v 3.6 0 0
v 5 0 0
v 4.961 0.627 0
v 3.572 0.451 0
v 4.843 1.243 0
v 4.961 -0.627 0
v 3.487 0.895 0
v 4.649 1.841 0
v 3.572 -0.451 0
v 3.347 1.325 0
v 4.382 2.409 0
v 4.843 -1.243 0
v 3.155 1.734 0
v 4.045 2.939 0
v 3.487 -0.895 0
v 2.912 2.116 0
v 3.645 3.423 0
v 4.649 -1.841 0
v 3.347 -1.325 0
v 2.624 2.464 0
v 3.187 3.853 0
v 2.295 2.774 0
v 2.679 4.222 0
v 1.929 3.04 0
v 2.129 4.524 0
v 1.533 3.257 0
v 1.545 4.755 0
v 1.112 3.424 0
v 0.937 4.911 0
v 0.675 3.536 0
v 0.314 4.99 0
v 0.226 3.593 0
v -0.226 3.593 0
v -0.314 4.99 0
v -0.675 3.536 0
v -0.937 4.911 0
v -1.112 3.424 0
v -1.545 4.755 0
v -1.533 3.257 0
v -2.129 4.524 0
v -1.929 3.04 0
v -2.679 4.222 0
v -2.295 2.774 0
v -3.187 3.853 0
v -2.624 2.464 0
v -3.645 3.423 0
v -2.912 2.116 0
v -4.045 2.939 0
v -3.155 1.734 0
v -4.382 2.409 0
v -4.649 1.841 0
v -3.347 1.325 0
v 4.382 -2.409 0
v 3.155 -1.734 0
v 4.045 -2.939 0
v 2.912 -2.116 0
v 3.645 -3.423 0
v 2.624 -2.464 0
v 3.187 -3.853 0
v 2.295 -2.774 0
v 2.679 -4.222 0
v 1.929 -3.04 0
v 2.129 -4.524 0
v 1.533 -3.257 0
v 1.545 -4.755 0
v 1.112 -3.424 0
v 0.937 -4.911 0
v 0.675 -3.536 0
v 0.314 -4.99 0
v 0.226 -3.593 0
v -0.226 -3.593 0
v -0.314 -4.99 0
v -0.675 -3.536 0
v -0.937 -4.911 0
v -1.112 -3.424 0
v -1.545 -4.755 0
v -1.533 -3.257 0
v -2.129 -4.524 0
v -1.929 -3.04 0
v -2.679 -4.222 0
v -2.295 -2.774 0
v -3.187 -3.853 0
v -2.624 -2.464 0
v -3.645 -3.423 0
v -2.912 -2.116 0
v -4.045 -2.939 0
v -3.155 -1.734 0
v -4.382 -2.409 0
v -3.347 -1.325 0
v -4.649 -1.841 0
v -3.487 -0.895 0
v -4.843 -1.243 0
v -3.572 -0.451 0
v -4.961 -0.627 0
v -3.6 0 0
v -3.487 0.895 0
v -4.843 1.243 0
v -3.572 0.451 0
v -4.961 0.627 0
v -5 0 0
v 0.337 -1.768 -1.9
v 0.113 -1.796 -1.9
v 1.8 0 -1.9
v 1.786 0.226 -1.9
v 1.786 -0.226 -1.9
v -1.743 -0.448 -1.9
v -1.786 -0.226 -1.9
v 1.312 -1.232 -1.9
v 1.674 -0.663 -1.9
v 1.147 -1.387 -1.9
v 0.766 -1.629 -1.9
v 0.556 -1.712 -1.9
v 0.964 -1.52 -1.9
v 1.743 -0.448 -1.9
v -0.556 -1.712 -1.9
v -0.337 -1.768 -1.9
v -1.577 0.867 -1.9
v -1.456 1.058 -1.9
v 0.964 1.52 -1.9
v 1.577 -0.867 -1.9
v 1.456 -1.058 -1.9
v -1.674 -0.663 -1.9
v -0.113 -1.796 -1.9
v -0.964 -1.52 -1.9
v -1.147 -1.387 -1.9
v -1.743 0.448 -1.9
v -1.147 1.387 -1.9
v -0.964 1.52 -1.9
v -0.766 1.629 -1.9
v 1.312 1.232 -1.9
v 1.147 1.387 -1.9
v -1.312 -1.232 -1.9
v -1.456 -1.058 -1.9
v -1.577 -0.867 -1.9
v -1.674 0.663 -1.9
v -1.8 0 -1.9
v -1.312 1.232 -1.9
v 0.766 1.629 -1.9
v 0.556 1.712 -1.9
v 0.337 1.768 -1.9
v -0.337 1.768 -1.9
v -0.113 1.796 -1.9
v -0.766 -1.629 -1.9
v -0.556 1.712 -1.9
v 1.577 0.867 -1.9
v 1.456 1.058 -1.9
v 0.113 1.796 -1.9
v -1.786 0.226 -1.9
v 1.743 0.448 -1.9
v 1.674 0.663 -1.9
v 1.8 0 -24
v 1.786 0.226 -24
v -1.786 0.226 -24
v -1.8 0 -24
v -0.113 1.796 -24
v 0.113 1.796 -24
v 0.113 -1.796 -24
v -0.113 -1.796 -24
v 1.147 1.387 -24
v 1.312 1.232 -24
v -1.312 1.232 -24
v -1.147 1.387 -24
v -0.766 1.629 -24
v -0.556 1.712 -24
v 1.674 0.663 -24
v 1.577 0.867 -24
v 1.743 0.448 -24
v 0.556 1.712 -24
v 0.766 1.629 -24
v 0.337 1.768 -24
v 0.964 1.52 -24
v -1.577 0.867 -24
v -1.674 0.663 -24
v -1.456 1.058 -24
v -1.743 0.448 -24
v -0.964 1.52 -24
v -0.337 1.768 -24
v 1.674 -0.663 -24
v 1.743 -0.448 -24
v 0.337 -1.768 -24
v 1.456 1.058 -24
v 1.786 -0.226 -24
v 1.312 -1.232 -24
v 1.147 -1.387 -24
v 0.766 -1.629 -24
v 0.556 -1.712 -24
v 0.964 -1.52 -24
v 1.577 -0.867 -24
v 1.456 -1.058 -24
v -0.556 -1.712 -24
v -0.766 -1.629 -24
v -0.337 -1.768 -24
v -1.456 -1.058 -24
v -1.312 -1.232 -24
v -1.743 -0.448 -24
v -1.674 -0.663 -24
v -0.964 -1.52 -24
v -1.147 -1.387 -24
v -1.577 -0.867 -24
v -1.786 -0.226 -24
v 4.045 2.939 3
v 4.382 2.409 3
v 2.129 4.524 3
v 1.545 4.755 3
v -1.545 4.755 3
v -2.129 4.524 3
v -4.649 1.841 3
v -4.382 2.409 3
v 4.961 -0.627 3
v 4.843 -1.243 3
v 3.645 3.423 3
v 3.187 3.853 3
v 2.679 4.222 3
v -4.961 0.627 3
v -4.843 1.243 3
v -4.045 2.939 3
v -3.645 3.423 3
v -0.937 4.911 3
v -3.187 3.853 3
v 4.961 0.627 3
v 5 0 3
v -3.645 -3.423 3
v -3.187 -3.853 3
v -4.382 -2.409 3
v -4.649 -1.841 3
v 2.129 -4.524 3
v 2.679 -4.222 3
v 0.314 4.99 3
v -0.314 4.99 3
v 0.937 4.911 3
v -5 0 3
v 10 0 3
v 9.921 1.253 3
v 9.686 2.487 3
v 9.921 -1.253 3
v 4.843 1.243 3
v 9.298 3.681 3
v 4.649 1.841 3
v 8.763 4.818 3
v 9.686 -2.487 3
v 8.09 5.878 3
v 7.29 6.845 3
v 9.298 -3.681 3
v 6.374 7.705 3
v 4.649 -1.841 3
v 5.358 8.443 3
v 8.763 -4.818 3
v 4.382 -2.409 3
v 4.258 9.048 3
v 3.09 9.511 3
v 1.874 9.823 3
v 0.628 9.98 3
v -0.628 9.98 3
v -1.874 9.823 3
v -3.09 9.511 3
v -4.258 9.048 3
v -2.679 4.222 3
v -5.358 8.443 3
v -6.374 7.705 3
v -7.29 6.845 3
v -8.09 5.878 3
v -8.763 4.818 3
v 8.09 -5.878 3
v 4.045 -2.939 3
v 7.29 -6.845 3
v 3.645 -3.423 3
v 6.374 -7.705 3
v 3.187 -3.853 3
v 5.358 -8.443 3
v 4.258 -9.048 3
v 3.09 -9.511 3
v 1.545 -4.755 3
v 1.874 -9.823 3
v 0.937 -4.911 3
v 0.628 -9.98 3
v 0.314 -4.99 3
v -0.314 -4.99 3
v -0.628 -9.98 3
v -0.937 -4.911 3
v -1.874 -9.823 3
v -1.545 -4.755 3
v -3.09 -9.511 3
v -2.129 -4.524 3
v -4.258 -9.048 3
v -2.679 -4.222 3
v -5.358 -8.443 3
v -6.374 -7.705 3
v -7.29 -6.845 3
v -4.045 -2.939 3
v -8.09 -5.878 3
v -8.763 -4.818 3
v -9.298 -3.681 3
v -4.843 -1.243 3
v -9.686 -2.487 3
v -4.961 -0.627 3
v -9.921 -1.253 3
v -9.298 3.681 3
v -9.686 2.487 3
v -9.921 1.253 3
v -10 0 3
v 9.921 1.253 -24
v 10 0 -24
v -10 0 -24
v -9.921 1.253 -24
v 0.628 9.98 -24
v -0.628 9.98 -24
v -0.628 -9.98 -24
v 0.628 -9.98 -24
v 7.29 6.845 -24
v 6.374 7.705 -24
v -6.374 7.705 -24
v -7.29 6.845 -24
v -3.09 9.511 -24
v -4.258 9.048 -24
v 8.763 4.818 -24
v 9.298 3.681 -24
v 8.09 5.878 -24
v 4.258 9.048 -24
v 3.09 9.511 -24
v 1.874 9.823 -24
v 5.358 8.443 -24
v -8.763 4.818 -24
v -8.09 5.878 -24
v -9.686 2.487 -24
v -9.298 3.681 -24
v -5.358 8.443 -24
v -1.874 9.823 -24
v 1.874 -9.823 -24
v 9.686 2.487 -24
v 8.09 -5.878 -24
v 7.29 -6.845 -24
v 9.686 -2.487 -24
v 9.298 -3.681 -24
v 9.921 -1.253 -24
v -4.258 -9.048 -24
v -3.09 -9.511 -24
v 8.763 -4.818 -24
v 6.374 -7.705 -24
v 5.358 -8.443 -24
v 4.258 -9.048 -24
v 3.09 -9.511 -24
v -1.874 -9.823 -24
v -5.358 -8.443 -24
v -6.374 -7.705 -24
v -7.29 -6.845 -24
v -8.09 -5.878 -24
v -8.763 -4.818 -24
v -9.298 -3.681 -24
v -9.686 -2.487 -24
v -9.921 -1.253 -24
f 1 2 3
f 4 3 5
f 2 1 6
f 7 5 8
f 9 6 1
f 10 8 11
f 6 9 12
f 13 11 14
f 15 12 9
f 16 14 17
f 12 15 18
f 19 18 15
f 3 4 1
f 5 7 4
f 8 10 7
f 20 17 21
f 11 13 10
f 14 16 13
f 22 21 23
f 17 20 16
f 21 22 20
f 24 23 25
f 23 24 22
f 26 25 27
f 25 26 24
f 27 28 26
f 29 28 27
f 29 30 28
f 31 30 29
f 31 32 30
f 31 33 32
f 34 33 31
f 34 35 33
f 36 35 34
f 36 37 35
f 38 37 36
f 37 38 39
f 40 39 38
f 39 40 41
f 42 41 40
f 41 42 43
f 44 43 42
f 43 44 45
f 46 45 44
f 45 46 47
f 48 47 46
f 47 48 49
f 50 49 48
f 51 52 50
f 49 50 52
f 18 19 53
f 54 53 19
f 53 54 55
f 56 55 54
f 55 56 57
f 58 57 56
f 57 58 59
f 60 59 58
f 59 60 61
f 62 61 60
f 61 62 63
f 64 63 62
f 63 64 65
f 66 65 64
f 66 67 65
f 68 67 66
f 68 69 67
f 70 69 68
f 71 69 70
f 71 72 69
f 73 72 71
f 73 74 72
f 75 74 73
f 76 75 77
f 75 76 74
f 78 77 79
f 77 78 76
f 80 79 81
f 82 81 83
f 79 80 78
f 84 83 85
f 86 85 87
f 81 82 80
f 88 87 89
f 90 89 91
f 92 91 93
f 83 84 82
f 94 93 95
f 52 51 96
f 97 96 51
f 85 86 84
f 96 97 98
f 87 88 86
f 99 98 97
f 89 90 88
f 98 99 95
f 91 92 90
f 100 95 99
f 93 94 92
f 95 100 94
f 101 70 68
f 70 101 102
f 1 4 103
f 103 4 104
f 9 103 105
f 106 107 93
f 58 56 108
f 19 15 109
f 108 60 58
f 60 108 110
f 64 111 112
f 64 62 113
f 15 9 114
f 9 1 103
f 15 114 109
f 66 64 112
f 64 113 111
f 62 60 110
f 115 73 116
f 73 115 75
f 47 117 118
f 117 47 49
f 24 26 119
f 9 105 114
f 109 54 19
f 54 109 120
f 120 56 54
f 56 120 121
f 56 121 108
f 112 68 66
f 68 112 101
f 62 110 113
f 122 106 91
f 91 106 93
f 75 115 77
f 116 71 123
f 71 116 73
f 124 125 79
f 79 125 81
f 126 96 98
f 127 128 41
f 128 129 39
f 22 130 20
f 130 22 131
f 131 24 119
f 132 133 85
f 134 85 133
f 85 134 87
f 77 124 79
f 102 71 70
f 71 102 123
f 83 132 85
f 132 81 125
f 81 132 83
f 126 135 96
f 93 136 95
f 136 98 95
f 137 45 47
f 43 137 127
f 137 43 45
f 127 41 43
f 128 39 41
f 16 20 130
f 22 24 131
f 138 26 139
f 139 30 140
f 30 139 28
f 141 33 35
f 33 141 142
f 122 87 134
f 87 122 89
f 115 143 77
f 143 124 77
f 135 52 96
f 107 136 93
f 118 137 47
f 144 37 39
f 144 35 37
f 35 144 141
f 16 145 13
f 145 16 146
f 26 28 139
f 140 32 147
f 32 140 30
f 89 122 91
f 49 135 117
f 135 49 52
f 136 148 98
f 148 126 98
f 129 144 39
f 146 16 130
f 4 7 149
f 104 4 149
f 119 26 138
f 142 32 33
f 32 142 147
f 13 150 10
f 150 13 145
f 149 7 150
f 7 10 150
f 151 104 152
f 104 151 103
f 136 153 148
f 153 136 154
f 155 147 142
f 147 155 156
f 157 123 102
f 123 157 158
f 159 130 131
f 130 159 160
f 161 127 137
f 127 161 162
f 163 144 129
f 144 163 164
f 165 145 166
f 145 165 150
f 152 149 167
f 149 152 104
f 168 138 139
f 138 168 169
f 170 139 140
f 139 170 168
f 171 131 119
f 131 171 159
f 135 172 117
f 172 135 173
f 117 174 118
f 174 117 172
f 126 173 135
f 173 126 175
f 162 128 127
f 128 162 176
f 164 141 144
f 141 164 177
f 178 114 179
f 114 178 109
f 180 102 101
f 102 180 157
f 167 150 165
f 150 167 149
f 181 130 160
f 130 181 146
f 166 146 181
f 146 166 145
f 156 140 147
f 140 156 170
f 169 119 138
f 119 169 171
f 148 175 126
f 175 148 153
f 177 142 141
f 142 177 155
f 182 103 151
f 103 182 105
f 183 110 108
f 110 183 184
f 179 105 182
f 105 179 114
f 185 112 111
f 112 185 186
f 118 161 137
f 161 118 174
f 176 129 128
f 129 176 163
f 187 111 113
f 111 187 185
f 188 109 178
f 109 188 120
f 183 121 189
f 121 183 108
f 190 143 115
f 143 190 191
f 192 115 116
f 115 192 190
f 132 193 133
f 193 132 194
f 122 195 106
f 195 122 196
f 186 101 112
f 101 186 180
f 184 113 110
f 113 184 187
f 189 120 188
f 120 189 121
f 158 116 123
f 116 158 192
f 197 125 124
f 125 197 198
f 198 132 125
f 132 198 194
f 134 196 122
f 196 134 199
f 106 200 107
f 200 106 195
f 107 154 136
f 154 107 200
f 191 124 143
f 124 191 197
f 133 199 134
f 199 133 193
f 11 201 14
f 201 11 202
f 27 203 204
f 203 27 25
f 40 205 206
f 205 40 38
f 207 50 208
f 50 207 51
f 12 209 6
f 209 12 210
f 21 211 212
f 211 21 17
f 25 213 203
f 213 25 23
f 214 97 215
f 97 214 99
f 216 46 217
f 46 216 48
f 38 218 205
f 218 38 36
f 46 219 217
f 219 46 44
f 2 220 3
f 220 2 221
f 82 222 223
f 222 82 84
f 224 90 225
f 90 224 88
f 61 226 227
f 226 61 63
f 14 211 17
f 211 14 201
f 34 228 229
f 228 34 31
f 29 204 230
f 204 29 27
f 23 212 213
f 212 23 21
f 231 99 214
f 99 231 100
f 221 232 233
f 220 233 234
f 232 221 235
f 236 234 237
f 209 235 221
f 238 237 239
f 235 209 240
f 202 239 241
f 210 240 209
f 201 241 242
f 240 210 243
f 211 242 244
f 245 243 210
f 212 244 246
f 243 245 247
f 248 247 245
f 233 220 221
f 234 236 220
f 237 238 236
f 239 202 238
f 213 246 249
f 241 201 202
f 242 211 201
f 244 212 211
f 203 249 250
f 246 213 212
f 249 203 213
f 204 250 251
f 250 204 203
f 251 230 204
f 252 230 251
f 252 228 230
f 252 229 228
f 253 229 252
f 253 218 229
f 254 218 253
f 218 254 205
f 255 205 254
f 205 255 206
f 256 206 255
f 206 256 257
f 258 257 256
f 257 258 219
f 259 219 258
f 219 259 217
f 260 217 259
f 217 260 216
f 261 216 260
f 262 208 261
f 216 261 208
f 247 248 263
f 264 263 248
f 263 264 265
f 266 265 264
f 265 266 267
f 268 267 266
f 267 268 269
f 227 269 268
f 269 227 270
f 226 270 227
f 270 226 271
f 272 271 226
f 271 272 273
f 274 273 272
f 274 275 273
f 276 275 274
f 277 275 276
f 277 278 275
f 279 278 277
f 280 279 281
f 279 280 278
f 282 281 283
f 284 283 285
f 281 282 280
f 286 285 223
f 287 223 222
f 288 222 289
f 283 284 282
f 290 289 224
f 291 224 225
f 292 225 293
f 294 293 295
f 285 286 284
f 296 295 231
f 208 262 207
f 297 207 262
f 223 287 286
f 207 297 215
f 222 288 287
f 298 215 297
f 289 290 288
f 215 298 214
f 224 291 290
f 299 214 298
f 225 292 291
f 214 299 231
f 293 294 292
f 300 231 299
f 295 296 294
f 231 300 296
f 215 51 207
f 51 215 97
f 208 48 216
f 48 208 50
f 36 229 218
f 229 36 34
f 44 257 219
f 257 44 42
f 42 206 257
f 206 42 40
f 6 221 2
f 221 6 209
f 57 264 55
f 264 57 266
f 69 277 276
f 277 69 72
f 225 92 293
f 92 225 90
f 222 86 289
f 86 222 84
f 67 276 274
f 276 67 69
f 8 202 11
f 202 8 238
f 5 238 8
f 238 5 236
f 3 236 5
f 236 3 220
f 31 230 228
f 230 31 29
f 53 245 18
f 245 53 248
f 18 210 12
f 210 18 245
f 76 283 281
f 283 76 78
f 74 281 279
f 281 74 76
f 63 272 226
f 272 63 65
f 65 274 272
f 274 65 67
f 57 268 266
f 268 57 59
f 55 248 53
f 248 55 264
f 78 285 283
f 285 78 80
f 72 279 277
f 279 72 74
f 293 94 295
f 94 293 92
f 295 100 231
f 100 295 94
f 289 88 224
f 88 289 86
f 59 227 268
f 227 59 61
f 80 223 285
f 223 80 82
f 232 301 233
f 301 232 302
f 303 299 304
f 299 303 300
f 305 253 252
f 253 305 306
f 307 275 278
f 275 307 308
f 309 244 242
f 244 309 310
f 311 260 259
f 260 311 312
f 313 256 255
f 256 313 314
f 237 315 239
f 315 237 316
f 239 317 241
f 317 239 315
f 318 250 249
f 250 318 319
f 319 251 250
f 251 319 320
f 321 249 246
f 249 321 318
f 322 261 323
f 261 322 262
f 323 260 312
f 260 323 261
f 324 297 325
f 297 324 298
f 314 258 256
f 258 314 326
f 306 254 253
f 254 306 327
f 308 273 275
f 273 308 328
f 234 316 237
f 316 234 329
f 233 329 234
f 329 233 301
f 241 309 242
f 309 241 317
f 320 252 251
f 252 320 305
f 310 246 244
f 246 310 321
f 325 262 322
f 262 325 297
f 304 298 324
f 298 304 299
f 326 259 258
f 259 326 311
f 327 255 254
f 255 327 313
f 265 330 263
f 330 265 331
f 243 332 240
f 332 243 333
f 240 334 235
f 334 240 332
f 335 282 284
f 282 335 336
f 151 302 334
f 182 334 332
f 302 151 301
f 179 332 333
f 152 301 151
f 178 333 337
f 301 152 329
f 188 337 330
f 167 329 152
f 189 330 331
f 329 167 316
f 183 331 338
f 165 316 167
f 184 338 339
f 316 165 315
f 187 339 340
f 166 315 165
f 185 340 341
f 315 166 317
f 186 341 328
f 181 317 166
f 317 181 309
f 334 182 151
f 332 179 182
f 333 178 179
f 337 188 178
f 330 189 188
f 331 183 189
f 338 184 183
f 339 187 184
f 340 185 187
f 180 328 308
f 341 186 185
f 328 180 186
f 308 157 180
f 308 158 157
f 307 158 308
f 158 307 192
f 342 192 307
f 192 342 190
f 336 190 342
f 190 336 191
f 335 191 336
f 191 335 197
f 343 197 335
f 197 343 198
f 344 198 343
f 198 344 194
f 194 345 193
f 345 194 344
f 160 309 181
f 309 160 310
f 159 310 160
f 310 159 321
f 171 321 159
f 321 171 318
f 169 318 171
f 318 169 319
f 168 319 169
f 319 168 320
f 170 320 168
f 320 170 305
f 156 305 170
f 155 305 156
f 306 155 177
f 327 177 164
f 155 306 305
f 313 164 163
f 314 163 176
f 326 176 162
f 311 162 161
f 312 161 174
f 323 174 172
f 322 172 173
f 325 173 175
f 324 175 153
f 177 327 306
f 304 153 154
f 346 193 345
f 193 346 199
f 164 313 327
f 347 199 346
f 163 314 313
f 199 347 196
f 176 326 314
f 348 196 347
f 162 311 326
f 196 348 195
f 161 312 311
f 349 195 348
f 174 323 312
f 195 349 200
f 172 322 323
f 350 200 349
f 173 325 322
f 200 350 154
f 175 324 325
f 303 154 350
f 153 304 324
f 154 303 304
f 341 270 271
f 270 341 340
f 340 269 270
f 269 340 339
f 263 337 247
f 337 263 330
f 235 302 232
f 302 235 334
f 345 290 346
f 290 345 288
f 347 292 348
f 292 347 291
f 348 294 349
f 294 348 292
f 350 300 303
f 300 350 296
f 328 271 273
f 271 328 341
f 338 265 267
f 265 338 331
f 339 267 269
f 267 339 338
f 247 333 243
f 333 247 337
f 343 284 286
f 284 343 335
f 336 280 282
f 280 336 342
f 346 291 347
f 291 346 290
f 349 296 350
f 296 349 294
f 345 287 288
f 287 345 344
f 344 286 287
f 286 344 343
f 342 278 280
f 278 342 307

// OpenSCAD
$fn = 50;


difference() {
	union() {
		translate(v = [0, 0, -24.0000000000]) {
			cylinder(h = 27, r = 10.0000000000);
		}
	}
	union() {
		translate(v = [0, 0, 0]) {
			rotate(a = [0, 0, 0]) {
				difference() {
					union() {
						translate(v = [0, 0, -27.0000000000]) {
							cylinder(h = 27, r = 1.5000000000);
						}
						translate(v = [0, 0, -1.9000000000]) {
							cylinder(h = 1.9000000000, r1 = 1.8000000000, r2 = 3.6000000000);
						}
						translate(v = [0, 0, -27.0000000000]) {
							cylinder(h = 27, r = 1.8000000000);
						}
						translate(v = [0, 0, -27.0000000000]) {
							cylinder(h = 27, r = 1.5000000000);
						}
					}
					union();
				}
			}
		}
		#cylinder(h = 3, r = 5.0000000000);
	}
}
